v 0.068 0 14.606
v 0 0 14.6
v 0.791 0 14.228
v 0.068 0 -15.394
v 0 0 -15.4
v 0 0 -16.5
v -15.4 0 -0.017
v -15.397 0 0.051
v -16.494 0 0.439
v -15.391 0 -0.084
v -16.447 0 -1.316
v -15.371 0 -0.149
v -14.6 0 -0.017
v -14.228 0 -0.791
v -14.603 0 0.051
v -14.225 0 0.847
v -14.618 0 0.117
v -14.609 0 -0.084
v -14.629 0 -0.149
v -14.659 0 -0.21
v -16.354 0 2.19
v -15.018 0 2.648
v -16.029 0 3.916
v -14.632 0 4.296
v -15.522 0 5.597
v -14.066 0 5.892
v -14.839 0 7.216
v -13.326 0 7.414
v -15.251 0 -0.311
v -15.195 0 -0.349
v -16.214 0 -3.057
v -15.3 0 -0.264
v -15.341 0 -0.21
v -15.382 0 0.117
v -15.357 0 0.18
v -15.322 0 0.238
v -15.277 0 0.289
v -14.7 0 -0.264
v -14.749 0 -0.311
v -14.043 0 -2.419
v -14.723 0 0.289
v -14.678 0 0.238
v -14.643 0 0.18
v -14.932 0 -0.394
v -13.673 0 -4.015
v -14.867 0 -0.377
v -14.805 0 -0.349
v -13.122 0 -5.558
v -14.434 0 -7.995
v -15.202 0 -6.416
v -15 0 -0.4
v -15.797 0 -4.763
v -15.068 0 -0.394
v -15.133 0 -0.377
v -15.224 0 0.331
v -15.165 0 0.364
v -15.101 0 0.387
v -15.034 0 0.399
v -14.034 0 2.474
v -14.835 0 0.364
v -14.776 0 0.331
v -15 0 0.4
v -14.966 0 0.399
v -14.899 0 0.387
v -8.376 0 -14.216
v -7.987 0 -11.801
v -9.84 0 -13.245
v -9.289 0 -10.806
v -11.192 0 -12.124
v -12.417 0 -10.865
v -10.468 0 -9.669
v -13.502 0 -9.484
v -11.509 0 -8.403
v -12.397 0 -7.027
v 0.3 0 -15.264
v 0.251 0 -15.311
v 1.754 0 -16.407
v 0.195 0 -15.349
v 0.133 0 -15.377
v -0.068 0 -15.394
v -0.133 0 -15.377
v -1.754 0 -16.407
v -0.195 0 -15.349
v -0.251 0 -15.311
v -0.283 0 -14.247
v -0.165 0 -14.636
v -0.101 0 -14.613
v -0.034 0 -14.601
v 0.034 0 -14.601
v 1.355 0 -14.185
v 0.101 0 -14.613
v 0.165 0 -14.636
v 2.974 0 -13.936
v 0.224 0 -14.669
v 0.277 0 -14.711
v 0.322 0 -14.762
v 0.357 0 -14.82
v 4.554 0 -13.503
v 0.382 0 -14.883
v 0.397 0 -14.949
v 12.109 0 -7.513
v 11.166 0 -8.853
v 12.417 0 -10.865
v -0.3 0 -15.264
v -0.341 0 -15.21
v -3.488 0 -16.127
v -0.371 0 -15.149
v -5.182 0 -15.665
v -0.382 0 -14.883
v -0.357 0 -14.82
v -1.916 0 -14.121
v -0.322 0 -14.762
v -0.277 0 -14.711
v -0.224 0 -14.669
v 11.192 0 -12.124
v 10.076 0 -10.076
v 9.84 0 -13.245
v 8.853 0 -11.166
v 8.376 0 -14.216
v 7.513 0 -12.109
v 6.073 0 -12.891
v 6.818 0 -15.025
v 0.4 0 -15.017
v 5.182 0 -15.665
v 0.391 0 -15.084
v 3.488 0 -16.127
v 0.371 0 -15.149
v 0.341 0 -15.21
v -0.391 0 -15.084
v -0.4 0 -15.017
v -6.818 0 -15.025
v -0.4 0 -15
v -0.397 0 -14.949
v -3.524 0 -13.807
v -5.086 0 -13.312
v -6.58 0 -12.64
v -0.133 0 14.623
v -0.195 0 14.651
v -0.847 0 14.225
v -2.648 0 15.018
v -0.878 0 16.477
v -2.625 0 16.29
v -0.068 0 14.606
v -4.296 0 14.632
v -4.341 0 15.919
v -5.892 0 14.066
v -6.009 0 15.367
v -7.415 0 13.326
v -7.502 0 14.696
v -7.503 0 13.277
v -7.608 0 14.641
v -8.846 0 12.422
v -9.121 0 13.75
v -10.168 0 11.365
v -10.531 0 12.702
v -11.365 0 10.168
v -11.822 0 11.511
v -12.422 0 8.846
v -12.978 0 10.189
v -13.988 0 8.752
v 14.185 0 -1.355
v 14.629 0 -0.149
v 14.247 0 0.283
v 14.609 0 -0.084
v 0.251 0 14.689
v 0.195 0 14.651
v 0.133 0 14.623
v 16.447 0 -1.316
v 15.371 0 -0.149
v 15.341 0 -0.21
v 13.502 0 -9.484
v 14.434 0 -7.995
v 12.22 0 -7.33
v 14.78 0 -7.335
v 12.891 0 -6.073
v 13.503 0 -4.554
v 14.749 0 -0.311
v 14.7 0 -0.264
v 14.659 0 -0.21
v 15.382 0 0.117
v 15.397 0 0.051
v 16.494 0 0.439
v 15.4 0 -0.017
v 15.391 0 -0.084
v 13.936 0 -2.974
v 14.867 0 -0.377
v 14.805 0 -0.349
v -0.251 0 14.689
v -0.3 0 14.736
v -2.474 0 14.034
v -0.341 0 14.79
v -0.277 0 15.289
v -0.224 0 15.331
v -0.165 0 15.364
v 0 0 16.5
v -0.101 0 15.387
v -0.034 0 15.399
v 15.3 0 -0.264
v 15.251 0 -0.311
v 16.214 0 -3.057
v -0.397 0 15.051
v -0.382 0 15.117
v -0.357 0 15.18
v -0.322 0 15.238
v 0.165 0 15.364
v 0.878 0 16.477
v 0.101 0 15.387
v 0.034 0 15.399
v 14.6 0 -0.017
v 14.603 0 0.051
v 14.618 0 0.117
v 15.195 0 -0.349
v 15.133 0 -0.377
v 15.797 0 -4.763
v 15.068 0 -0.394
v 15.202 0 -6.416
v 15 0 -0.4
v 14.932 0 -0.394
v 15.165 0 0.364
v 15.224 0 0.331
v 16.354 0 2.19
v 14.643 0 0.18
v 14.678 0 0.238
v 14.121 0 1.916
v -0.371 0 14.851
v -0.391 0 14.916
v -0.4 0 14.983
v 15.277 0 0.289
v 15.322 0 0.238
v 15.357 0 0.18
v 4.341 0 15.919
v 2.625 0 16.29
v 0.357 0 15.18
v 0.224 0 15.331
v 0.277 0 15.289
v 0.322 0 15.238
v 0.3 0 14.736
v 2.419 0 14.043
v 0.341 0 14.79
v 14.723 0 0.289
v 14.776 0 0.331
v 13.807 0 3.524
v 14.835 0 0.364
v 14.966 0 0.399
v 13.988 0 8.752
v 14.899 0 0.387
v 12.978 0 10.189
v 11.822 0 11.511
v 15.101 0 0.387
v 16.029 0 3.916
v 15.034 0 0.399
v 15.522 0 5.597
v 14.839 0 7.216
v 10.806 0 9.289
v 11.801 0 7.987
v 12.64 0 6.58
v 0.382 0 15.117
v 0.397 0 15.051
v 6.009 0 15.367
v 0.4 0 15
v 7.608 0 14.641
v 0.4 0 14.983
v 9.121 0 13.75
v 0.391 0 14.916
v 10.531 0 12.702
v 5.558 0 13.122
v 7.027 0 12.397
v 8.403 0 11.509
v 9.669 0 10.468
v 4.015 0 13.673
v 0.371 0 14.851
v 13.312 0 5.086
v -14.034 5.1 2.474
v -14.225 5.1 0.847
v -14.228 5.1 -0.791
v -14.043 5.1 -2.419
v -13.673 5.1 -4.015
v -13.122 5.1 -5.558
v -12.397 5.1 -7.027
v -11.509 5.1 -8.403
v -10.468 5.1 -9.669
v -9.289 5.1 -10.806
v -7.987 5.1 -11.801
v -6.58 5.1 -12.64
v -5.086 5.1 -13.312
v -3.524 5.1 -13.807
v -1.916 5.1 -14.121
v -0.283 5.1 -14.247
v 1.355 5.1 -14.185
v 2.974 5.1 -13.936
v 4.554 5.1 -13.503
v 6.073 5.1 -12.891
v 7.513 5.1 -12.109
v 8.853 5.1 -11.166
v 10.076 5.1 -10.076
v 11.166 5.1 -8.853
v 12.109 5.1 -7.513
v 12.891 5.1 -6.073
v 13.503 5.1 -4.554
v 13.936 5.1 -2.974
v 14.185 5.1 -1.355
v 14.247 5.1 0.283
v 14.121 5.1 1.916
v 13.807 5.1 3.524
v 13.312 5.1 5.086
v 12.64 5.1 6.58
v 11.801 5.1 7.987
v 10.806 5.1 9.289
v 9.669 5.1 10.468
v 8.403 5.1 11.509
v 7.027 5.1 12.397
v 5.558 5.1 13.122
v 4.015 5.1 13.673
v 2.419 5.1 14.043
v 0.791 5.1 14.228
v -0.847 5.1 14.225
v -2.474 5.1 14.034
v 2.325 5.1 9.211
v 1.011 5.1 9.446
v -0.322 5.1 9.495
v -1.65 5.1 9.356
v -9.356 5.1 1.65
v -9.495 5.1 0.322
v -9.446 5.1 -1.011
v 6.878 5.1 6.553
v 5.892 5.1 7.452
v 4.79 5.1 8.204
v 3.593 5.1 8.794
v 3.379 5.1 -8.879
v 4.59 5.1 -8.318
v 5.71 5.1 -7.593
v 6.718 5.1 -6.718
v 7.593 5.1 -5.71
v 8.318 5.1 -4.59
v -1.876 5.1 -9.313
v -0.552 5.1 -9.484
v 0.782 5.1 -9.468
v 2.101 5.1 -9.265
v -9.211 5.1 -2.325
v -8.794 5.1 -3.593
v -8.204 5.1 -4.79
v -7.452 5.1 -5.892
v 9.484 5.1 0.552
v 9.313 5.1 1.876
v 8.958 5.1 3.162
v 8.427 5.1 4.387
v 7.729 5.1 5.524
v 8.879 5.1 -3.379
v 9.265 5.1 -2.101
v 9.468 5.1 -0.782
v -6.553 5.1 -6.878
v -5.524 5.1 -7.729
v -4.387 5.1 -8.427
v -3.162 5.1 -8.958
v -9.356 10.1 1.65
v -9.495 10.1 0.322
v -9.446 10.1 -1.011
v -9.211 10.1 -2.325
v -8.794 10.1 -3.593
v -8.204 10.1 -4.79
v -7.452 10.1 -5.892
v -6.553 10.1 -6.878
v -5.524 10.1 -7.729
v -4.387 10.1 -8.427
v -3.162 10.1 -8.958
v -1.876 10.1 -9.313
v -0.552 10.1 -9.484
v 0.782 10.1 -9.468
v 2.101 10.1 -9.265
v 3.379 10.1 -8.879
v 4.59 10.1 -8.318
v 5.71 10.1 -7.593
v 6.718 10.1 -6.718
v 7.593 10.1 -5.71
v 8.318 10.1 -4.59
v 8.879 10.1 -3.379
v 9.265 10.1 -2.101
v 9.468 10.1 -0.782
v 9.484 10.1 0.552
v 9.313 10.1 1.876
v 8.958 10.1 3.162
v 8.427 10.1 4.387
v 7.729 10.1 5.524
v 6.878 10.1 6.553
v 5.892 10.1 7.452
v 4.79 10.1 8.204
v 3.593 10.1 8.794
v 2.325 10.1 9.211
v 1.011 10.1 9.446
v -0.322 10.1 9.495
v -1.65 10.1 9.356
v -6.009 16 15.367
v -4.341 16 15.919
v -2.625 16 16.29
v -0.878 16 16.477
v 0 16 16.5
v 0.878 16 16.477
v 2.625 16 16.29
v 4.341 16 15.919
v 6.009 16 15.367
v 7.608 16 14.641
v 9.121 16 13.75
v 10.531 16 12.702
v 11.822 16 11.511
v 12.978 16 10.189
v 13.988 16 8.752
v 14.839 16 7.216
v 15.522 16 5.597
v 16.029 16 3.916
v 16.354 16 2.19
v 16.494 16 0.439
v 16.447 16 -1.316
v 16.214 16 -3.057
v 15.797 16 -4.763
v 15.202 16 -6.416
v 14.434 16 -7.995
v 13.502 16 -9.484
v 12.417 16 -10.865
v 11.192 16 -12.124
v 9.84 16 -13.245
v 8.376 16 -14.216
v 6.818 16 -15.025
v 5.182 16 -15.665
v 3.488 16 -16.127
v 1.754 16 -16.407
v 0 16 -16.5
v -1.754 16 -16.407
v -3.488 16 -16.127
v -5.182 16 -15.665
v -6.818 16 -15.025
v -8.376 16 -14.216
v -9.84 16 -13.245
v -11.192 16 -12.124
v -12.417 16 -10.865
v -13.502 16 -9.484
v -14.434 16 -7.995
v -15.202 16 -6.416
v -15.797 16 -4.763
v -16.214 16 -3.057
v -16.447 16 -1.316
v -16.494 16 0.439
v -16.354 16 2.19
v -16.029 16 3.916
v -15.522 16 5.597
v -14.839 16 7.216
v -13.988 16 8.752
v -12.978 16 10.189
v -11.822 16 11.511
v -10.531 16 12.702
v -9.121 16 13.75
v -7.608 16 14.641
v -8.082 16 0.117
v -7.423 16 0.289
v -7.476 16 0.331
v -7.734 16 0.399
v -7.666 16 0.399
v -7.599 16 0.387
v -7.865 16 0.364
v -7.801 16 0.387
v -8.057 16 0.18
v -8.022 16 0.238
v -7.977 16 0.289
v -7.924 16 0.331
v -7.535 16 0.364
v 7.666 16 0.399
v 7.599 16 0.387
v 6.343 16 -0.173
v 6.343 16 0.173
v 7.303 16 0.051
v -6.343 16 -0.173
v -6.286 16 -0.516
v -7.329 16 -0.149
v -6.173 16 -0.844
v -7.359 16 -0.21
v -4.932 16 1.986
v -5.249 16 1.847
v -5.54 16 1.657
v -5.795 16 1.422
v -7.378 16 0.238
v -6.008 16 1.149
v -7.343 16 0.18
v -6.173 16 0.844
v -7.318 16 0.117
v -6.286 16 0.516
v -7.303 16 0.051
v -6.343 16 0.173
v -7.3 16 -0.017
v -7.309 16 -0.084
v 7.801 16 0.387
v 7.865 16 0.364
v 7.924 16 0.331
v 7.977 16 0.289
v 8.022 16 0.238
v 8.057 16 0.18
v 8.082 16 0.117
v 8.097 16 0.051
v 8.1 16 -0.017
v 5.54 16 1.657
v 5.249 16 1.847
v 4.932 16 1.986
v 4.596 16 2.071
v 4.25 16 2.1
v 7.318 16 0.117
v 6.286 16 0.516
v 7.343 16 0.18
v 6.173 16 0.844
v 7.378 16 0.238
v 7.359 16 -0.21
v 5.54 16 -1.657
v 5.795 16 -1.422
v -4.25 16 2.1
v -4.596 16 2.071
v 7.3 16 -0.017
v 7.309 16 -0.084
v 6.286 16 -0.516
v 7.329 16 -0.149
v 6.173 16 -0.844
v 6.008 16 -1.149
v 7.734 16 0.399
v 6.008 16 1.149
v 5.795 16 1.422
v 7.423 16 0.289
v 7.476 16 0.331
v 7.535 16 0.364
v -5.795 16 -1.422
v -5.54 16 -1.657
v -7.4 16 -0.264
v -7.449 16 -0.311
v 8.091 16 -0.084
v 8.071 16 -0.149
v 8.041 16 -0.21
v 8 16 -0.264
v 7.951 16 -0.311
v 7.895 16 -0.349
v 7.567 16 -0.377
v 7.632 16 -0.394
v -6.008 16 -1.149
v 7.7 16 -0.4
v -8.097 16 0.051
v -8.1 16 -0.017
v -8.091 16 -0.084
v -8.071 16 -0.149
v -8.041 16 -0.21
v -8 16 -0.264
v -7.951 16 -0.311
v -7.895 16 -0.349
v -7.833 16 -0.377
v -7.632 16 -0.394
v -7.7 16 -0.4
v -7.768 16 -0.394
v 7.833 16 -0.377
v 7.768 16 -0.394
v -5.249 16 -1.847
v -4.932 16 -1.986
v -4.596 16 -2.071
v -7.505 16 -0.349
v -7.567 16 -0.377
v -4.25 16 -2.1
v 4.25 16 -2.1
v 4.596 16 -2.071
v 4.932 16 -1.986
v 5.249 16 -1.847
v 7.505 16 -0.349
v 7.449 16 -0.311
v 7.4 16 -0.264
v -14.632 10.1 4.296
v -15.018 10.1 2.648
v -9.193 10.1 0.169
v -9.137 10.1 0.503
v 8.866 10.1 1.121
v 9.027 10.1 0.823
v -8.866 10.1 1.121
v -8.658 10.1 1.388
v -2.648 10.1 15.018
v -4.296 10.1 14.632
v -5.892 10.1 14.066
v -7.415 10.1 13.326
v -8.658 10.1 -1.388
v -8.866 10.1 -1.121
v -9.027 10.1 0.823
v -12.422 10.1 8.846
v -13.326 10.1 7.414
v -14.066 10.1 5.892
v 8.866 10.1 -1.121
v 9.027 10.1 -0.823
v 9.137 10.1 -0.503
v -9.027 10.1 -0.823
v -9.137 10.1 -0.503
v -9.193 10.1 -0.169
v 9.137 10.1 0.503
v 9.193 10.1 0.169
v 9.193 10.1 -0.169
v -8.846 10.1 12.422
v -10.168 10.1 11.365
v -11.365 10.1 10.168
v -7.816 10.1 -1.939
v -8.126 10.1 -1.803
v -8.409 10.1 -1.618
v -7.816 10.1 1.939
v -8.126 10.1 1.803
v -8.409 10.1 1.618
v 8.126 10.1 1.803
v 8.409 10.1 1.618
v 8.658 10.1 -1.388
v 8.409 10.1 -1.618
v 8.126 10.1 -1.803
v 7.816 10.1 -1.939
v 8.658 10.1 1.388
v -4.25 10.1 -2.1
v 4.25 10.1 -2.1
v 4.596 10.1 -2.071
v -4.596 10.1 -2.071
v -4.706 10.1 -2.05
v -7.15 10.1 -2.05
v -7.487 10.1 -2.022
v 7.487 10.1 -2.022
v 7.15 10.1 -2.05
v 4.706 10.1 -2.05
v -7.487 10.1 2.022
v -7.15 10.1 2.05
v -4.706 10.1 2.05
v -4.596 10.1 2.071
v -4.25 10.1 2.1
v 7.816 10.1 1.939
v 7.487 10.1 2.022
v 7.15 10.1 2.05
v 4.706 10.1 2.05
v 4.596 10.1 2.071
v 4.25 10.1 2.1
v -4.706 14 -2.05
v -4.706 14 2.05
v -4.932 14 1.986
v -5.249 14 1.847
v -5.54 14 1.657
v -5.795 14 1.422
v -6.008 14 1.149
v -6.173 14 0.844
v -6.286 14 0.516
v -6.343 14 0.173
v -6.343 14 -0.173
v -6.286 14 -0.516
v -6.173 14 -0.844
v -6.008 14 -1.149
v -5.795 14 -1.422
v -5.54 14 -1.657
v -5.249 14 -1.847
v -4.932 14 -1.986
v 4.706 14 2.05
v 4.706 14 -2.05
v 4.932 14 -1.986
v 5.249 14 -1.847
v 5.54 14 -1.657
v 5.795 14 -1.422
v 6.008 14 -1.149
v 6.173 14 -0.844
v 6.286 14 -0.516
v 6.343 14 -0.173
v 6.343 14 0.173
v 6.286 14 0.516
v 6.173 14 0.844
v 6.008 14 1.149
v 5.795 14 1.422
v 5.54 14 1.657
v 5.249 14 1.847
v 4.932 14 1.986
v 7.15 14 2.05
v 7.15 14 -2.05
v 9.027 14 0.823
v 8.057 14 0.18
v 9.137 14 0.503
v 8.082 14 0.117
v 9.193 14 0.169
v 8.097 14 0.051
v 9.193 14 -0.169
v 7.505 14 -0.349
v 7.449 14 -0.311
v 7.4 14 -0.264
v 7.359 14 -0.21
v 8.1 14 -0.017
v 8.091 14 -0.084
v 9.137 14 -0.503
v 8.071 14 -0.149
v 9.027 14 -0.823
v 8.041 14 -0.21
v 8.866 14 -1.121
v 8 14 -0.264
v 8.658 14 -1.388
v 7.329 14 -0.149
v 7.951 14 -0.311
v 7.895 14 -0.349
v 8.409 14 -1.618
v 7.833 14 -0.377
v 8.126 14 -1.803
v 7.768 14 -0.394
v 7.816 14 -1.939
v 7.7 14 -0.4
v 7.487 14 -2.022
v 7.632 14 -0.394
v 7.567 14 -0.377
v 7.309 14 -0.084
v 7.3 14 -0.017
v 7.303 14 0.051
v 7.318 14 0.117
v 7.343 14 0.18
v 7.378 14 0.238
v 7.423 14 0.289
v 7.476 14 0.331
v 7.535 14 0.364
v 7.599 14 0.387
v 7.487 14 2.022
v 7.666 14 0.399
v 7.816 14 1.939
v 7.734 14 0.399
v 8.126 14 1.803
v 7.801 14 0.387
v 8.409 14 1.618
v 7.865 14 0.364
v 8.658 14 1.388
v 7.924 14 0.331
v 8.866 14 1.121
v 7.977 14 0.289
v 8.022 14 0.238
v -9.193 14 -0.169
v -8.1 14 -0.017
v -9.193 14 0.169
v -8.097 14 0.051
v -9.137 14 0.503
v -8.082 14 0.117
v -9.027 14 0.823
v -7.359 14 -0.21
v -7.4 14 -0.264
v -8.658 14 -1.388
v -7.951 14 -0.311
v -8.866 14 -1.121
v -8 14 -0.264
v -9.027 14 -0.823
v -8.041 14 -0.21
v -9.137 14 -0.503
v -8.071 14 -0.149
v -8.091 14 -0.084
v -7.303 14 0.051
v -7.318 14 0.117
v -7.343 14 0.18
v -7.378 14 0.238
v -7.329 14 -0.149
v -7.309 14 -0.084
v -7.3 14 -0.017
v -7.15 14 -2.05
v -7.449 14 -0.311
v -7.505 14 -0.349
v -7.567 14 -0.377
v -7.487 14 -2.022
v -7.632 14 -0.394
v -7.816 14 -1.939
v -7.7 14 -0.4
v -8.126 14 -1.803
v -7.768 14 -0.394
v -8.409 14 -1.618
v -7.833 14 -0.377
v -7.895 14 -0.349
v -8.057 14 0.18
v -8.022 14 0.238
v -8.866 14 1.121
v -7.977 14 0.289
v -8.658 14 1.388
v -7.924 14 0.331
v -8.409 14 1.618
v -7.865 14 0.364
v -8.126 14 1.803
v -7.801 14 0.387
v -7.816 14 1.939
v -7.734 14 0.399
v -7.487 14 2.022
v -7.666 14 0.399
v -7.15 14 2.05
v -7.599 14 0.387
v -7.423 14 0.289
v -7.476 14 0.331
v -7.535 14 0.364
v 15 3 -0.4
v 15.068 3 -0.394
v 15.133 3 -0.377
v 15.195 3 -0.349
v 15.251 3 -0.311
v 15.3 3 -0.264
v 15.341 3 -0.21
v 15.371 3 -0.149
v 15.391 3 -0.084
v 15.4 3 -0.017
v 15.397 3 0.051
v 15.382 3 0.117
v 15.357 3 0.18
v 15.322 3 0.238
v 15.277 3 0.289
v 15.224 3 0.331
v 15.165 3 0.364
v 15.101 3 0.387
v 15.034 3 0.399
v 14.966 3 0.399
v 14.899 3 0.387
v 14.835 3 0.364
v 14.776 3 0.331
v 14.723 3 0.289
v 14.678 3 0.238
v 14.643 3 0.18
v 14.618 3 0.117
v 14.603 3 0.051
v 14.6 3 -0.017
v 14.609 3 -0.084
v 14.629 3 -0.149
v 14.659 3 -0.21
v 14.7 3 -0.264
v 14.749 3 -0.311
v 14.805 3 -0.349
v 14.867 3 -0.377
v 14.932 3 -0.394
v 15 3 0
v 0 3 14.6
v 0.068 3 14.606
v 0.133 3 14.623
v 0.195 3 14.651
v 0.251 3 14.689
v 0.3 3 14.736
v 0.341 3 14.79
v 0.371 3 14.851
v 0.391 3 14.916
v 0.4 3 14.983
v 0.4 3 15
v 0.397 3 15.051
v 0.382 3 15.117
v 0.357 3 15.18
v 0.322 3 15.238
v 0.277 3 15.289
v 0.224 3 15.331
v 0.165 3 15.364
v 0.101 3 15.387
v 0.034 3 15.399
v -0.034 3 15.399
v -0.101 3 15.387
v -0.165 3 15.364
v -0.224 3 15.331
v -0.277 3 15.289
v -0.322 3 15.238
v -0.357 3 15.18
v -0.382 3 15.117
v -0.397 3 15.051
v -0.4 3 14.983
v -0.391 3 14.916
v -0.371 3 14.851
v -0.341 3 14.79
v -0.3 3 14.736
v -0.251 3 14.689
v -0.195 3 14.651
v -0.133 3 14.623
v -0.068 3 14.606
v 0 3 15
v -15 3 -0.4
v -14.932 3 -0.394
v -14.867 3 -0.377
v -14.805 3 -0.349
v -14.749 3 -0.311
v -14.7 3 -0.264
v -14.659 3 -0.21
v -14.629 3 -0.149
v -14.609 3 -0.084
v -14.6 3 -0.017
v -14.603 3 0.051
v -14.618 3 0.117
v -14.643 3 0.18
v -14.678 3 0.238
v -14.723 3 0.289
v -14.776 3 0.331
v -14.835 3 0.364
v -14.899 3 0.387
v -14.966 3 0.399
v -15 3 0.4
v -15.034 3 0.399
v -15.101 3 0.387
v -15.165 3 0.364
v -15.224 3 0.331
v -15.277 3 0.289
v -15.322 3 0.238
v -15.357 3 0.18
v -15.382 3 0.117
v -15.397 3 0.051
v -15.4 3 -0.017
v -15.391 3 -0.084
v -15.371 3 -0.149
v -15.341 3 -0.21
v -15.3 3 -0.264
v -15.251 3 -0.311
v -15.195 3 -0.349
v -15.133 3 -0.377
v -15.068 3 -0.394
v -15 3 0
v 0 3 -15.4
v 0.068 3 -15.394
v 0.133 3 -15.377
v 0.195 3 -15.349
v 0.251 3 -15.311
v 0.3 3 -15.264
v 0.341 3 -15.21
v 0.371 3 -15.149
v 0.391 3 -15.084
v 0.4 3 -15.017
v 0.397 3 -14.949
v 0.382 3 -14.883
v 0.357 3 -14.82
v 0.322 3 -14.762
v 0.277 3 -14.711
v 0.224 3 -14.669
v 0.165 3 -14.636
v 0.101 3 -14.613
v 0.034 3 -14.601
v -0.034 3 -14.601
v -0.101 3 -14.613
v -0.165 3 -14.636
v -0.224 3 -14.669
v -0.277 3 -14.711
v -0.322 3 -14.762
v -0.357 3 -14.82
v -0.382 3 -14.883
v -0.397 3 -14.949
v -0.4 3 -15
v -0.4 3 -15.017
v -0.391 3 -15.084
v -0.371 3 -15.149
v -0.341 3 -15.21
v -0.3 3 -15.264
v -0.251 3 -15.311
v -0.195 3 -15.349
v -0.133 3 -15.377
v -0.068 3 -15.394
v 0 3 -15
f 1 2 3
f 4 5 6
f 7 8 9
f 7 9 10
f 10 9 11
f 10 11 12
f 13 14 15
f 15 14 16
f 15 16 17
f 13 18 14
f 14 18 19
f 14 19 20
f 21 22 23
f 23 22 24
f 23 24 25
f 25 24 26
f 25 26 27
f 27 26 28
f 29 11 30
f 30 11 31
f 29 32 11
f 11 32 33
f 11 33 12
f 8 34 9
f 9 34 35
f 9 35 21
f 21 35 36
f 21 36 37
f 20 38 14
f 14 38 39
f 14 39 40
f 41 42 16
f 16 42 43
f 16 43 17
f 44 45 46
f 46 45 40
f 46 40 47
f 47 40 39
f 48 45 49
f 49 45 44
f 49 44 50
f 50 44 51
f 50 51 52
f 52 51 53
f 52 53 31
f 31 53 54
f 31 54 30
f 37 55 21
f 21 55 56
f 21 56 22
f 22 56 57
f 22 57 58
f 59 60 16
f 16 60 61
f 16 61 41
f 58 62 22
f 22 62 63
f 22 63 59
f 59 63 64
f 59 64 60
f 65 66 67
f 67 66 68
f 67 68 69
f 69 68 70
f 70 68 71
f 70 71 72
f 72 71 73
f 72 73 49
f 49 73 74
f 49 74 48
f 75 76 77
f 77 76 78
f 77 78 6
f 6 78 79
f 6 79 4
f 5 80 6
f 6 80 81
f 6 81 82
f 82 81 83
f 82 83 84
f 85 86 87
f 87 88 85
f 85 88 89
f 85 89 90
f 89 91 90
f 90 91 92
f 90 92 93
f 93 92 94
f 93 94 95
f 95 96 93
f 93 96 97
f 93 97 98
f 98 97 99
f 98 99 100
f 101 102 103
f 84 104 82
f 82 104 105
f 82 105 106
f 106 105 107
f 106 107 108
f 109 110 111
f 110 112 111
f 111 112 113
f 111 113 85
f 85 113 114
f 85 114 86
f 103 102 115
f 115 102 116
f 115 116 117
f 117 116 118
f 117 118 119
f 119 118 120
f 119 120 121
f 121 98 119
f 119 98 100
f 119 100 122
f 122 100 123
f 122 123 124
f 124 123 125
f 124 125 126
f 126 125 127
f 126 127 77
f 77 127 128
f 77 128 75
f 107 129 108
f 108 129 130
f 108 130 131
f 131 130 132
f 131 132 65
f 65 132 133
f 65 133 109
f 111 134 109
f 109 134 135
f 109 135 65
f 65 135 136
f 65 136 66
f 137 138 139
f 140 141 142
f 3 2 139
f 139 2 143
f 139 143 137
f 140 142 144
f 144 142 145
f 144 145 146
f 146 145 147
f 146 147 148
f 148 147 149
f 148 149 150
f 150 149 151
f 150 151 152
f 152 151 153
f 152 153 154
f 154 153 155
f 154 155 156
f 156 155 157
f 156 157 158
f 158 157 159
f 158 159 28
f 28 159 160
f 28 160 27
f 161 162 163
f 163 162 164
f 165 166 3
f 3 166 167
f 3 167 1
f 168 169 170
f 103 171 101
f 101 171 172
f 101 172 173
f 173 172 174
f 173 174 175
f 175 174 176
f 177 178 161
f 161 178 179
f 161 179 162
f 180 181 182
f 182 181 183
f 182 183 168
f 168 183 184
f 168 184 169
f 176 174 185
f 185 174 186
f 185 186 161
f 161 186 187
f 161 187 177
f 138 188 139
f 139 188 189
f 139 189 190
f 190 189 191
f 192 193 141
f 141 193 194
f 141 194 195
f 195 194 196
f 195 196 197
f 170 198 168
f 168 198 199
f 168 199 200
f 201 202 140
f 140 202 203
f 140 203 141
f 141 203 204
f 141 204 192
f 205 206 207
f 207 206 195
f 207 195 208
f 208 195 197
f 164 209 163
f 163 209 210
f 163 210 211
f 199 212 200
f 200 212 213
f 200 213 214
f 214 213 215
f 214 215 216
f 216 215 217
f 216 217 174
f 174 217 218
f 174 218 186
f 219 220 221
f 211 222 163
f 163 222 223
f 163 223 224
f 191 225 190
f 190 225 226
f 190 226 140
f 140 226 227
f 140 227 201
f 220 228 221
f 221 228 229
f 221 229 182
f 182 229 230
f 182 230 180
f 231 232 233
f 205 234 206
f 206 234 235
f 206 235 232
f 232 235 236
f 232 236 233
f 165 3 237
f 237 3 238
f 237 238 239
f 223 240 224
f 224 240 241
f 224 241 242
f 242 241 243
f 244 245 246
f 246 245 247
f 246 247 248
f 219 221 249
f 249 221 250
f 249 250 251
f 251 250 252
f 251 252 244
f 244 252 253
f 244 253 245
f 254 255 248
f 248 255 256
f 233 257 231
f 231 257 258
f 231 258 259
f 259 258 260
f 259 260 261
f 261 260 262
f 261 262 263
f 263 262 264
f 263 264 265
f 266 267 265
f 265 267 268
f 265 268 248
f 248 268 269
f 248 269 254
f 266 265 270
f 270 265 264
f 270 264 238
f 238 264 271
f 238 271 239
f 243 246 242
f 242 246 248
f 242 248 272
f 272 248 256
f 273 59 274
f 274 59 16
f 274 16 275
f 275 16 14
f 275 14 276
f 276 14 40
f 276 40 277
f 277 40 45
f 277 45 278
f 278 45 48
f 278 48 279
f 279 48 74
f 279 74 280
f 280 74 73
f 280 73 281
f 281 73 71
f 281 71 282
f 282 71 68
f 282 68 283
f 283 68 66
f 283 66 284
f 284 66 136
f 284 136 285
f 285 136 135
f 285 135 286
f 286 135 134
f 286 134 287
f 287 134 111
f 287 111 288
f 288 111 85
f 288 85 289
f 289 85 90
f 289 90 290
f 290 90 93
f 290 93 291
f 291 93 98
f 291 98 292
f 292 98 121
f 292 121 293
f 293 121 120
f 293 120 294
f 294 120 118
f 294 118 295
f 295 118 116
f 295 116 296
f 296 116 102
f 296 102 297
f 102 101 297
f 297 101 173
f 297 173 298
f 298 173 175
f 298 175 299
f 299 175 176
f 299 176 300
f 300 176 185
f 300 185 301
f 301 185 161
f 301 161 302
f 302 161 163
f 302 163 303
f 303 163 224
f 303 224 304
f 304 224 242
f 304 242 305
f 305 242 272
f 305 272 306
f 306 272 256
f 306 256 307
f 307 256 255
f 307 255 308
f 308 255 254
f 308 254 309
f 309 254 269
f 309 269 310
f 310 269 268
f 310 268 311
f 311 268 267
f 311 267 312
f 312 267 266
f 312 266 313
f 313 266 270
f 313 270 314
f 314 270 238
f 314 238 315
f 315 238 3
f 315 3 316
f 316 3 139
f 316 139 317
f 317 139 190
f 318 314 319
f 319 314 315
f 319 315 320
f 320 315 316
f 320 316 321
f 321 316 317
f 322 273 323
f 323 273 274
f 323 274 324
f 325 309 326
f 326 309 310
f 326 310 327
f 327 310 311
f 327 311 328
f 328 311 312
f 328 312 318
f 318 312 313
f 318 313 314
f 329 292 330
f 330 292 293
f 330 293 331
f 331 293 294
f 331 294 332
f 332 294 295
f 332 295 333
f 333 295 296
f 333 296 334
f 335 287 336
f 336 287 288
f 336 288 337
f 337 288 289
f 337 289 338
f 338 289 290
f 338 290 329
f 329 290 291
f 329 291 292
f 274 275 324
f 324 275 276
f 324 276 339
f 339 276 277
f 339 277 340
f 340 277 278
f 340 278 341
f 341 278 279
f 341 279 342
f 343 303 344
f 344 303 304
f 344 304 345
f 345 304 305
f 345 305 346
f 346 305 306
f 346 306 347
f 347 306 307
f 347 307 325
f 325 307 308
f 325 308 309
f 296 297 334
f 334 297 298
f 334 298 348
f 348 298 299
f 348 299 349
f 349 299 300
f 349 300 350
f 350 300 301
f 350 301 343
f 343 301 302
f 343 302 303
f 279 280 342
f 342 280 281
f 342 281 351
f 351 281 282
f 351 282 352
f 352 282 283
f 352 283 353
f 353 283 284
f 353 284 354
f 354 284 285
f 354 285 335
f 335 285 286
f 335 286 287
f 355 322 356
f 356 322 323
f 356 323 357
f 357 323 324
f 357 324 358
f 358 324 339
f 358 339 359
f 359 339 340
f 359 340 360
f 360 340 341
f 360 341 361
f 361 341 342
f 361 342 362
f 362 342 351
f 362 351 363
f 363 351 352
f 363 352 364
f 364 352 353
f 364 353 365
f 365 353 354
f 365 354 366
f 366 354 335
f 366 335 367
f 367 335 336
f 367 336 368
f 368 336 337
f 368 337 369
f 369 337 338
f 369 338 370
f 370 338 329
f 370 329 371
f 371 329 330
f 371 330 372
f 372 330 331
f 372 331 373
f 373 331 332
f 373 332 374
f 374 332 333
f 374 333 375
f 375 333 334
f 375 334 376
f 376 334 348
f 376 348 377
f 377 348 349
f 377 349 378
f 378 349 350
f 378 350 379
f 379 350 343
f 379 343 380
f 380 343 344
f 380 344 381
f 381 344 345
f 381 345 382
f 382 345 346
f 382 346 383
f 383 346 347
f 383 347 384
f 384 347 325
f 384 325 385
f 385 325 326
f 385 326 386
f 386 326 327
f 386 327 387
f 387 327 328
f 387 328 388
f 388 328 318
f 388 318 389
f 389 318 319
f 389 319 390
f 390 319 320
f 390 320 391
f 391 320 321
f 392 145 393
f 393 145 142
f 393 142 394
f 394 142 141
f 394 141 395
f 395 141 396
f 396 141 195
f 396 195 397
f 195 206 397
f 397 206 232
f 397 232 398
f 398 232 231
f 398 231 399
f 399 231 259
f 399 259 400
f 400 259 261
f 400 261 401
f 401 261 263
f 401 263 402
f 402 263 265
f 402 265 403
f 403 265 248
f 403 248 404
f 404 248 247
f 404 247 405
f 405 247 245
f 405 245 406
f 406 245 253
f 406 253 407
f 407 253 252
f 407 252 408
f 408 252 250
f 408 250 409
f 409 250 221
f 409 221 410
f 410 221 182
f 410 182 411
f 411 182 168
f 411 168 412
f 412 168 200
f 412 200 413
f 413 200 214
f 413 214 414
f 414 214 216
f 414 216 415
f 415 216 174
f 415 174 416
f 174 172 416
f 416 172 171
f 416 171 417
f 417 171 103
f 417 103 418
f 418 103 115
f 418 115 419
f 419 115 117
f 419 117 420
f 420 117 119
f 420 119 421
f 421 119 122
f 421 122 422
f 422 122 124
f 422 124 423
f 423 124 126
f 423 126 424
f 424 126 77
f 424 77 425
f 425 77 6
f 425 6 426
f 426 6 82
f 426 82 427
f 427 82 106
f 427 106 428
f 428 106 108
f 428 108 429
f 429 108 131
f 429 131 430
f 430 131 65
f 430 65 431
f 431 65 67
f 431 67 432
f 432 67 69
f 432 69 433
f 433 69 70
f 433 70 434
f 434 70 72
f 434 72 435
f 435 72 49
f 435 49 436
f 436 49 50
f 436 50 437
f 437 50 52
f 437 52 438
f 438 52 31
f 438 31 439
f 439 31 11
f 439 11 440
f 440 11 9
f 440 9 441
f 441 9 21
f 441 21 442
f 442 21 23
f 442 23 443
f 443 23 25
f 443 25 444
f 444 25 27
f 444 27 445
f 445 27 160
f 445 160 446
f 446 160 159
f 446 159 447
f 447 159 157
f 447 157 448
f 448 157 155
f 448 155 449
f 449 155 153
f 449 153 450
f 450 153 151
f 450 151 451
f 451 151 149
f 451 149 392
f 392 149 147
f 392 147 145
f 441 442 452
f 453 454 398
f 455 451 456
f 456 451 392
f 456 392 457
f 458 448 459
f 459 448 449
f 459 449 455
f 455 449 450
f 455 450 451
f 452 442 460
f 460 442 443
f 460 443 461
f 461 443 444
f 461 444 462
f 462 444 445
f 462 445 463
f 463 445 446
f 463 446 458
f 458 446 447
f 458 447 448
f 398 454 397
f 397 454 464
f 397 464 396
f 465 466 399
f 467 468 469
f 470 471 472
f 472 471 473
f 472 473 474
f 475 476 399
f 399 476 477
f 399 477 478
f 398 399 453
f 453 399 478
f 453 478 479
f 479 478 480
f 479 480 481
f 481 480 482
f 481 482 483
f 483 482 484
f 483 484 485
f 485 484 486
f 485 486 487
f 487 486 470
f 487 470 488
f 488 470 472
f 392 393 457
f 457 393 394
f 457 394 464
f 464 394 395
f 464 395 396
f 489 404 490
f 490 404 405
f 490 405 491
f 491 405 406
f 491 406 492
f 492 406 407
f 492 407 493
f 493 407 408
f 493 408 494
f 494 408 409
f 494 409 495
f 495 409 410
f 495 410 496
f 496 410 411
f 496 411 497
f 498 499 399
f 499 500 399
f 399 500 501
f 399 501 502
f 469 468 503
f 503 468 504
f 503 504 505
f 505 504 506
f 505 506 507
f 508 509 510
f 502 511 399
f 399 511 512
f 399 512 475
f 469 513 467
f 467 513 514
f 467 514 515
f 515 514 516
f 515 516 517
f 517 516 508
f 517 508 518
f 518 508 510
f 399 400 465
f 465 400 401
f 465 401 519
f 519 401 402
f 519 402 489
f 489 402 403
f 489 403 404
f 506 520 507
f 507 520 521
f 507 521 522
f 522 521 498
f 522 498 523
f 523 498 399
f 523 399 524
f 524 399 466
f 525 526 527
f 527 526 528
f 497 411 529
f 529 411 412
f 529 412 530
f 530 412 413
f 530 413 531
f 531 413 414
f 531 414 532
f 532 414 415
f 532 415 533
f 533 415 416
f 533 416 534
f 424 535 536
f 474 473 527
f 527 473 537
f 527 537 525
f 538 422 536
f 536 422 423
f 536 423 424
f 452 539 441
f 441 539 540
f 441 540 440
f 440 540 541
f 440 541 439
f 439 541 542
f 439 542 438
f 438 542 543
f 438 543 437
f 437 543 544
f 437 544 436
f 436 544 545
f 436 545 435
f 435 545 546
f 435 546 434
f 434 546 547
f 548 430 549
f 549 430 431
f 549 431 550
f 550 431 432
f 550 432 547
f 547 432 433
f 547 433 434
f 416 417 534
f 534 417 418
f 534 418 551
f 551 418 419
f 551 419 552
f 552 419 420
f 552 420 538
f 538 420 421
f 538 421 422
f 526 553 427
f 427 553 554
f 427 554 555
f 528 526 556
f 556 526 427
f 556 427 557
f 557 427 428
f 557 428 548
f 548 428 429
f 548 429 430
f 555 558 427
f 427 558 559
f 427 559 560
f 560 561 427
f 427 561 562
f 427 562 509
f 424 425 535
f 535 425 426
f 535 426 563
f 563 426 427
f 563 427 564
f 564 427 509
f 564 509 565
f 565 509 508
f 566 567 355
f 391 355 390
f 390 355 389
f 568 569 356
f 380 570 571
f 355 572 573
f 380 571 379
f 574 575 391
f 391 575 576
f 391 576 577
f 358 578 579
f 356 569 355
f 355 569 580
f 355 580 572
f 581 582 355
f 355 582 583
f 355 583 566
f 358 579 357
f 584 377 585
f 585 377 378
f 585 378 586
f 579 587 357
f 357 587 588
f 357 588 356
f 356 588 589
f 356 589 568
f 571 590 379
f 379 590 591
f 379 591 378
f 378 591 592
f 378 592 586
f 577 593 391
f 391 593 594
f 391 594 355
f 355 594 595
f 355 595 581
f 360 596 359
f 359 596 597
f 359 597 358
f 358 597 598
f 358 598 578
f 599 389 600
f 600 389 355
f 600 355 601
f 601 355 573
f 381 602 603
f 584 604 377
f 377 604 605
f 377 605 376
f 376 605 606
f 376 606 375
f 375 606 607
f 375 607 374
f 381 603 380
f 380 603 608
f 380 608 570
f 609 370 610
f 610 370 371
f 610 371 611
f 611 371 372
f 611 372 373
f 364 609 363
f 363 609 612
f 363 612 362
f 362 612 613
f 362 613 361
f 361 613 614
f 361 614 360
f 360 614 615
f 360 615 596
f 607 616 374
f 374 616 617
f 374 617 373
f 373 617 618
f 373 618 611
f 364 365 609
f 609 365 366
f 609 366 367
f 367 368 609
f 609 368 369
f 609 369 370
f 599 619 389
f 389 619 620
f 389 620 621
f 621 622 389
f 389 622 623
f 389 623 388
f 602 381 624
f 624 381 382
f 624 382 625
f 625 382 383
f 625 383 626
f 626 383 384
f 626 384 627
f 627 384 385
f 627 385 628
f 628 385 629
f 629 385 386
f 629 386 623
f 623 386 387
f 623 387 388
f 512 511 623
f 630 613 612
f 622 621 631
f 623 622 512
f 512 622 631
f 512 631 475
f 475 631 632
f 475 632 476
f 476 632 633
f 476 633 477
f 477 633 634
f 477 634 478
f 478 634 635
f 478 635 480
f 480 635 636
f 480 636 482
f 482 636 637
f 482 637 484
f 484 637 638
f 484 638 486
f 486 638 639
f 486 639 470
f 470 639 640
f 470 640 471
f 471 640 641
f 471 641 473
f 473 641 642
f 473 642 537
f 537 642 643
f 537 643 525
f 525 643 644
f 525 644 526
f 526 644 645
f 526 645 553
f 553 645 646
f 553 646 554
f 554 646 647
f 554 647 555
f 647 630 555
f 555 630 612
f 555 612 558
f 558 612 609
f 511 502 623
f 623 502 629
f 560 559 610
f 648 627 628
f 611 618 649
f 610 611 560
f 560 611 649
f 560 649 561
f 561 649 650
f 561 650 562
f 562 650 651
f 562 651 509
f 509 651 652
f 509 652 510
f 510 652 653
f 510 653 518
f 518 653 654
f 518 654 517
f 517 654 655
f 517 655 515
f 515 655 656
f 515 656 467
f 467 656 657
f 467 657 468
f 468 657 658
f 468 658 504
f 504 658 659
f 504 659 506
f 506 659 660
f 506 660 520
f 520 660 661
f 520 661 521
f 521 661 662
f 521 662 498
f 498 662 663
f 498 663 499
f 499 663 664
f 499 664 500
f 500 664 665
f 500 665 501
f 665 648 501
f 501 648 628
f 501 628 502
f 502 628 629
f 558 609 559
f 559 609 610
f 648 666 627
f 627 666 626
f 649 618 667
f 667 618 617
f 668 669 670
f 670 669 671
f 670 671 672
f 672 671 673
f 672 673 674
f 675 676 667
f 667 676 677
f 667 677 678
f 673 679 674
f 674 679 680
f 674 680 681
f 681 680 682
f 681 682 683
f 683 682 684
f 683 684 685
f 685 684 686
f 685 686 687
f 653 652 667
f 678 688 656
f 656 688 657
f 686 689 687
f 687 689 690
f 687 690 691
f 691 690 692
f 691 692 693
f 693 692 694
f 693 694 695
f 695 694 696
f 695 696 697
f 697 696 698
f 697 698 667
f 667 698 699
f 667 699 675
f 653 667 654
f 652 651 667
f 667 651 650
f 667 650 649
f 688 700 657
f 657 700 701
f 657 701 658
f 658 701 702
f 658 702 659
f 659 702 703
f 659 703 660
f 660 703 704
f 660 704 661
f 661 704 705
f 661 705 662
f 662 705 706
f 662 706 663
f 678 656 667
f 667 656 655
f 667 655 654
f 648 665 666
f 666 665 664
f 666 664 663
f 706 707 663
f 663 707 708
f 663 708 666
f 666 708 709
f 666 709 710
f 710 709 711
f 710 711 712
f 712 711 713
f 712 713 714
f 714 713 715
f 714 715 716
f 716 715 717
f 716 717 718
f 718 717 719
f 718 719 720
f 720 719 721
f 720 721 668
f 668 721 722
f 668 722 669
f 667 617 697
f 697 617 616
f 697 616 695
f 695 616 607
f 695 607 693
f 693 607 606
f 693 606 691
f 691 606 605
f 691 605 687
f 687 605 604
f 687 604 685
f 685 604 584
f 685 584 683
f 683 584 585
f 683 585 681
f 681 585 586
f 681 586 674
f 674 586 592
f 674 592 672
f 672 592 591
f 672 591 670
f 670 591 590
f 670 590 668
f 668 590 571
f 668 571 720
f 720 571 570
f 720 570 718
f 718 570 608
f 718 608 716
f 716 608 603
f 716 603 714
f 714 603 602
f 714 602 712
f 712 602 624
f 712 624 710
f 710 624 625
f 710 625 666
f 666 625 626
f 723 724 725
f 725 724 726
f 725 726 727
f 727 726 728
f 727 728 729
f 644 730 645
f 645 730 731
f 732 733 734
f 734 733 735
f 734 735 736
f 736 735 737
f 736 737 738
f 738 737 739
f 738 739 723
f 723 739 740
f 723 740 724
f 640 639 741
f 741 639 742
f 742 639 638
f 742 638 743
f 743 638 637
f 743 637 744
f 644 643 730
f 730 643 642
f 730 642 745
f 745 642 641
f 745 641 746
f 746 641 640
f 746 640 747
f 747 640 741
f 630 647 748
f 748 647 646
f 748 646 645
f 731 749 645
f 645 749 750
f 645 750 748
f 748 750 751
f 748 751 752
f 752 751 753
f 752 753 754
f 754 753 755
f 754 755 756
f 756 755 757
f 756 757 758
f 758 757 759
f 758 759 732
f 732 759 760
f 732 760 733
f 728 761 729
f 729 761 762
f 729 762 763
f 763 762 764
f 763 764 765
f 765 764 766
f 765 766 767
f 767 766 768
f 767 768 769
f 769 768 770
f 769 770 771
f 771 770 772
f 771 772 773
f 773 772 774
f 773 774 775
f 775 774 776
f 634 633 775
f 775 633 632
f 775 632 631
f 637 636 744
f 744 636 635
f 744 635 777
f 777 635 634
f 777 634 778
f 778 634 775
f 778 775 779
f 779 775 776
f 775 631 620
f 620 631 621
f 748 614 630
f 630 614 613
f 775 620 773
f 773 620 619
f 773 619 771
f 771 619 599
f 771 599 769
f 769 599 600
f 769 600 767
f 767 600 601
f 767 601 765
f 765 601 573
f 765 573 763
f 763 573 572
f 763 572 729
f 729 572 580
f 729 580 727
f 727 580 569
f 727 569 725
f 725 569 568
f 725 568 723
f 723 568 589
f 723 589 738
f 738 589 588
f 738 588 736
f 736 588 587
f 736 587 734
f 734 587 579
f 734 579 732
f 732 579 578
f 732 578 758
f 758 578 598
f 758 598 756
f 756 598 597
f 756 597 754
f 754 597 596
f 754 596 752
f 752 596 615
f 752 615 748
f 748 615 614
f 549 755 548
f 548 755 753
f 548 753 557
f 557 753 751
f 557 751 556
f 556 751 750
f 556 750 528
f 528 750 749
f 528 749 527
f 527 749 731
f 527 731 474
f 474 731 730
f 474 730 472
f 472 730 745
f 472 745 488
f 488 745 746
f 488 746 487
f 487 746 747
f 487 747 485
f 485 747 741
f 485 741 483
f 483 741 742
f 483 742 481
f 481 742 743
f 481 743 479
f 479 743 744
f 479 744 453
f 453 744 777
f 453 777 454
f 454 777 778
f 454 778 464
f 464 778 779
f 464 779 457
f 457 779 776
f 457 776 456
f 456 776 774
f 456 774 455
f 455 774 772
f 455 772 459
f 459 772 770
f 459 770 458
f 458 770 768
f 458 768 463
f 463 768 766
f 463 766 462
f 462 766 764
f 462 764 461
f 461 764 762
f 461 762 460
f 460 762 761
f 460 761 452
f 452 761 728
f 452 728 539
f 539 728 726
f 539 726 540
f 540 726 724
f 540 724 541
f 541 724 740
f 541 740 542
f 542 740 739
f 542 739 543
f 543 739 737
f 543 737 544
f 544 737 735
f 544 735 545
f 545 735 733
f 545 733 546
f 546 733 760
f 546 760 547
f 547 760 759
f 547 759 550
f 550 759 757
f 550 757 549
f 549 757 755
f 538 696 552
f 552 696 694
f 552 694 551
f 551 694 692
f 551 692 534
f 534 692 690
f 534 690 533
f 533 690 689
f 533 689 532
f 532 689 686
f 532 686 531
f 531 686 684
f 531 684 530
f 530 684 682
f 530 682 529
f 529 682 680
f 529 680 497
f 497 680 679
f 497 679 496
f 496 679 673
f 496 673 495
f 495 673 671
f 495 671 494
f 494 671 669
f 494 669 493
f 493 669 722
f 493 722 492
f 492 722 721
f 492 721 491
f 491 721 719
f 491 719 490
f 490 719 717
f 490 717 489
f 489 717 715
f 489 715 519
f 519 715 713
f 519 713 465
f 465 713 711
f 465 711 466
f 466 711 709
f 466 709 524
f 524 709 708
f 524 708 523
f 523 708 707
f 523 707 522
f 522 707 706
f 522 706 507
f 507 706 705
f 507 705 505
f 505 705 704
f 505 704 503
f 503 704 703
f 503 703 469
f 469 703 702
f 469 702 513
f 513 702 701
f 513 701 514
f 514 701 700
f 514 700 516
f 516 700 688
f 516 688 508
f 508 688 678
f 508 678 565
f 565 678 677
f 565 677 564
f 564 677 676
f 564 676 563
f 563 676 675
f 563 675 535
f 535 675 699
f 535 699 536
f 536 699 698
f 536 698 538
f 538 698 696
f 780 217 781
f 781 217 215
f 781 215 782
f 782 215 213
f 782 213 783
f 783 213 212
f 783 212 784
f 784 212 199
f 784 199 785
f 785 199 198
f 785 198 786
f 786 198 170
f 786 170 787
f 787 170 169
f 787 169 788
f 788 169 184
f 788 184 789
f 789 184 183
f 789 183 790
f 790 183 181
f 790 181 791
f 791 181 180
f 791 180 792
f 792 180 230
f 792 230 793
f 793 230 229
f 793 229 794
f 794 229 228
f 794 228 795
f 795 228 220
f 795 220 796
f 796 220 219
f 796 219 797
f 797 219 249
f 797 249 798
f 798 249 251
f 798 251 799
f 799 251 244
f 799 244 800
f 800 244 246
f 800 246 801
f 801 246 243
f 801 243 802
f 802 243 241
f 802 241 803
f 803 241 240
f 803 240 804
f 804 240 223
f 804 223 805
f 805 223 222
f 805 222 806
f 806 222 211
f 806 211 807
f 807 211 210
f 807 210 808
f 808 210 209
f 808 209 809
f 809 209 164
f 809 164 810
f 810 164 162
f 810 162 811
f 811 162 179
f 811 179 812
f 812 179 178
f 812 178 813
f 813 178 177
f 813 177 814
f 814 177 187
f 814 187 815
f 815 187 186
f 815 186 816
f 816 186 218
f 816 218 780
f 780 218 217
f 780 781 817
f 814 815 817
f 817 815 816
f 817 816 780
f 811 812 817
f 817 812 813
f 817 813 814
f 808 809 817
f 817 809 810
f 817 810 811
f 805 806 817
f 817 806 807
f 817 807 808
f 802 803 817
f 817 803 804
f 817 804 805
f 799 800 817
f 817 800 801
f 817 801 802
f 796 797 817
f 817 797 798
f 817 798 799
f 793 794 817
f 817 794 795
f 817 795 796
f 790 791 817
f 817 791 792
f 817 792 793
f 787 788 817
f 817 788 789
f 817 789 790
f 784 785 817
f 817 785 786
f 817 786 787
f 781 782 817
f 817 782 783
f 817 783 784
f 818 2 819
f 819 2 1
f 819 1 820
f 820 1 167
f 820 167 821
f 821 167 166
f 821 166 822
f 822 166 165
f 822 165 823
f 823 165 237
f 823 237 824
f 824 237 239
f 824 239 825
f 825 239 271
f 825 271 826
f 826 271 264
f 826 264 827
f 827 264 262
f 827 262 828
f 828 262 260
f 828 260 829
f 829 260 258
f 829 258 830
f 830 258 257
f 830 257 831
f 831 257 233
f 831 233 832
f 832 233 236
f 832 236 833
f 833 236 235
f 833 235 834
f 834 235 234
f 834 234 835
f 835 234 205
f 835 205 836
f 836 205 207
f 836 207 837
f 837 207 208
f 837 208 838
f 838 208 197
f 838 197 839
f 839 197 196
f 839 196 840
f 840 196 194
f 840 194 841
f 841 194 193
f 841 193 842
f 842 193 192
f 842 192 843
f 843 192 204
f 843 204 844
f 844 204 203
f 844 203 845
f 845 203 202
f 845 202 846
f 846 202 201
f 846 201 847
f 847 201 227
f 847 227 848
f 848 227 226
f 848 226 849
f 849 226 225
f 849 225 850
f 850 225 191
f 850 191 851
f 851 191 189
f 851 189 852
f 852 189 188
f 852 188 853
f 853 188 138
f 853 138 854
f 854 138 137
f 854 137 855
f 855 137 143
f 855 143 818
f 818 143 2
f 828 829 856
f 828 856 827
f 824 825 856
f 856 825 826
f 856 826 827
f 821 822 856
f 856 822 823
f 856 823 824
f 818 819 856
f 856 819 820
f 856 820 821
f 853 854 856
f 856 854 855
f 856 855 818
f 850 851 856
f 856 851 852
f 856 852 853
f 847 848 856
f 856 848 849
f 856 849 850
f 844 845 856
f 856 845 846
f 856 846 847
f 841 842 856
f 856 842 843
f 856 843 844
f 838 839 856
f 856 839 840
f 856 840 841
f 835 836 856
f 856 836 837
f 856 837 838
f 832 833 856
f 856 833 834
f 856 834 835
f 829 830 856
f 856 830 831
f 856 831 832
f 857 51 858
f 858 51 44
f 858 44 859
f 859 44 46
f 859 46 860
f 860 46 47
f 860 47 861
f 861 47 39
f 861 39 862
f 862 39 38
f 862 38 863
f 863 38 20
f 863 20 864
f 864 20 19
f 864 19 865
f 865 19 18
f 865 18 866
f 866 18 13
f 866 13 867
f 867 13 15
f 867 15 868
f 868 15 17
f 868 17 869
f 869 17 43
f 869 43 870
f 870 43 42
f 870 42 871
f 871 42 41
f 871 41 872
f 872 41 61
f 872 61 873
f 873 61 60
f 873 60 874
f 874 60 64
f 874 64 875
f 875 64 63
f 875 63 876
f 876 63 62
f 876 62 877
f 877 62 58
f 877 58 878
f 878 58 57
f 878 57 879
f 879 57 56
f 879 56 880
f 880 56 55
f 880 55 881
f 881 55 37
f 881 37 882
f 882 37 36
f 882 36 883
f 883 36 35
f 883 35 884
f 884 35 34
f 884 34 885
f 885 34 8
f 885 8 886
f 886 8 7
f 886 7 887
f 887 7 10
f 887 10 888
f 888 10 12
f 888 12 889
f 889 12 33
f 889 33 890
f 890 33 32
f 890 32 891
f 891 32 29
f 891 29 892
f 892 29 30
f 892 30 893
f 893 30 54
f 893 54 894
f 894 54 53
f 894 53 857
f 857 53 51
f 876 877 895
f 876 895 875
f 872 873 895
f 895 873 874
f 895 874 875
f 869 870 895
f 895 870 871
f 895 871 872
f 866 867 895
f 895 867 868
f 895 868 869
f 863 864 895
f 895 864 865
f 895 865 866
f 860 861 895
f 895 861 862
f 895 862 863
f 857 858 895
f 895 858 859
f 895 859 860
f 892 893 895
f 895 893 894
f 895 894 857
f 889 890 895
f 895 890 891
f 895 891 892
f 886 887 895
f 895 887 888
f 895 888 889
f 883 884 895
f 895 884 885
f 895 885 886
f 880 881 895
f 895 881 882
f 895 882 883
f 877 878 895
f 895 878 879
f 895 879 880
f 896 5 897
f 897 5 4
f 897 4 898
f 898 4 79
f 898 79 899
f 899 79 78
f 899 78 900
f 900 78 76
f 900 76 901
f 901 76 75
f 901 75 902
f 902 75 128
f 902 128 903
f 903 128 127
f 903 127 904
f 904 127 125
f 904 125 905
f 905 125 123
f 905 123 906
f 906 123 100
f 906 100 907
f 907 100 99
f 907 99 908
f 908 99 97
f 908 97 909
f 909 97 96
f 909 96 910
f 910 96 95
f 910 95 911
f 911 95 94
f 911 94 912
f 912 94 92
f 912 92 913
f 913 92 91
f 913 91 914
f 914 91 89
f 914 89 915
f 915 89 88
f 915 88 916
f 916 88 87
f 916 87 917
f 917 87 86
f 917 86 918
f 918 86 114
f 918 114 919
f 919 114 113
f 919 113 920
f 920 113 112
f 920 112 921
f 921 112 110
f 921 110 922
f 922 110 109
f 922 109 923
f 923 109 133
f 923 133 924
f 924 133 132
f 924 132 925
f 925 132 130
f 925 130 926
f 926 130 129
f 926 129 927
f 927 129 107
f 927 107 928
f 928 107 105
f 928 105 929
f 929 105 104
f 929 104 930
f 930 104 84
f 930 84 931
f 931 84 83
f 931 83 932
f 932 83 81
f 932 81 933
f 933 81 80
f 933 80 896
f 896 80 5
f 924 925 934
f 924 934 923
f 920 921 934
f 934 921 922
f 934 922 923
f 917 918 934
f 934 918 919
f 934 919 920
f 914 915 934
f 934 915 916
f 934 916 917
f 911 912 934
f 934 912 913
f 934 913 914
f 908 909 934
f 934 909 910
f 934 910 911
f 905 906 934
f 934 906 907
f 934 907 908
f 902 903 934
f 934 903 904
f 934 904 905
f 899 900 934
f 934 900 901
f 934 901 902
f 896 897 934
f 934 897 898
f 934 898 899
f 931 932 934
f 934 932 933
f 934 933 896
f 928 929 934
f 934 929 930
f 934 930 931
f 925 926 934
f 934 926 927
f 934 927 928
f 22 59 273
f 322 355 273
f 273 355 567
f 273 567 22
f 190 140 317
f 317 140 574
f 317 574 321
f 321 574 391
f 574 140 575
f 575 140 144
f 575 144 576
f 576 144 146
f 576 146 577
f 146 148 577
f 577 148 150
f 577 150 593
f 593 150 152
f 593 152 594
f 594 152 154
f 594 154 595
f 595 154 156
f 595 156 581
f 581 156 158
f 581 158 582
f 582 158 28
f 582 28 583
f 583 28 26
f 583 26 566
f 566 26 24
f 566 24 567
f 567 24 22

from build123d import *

# Parameters (mm, degrees)
SKETCH_1_R               = 16.5
EXTRUDE_1_DEPTH          = 16
SKETCH_2_R               = 14.25
CUT_EXTRUDE_1_DEPTH      = 5.1
SKETCH_3_R               = 9.5
CUT_EXTRUDE_2_DEPTH      = 5
CUT_EXTRUDE_3_DEPTH      = 29.293108702
CUT_EXTRUDE_START        = -14
CUT_EXTRUDE_4_DEPTH      = 3.9
SKETCH_6_R               = 0.4
CUT_EXTRUDE_5_DEPTH      = 2
SKETCH_7_R               = 0.4
CUT_EXTRUDE_6_DEPTH      = 3
PATTERN_CIRCULAR_1_COUNT = 4
CUT_EXTRUDE_START_2      = -10.1
CUT_EXTRUDE_7_DEPTH      = 10.1


# Read off the part's stored shape, not the designer's step: 切除-拉伸4
with BuildPart() as part:
    # 草图1 → 凸台-拉伸1 (new body)
    with BuildSketch(Plane(origin=(0, 0, 0), x_dir=(1, 0, 0), z_dir=(0, 1, 0))):
        with Locations(Location((0, 0, 0), (0, 0, 270))):
            Circle(SKETCH_1_R)
    extrude(amount=EXTRUDE_1_DEPTH)

    # 草图2 → 切除-拉伸1 (cut)
    with BuildSketch(Plane(origin=(0, 0, 0), x_dir=(-1, 0, 0), z_dir=(0, -1, 0))):
        with Locations(Location((0, 0, 0), (0, 0, 90))):
            Circle(SKETCH_2_R)
    extrude(amount=-CUT_EXTRUDE_1_DEPTH, mode=Mode.SUBTRACT)

    # 草图3 → 切除-拉伸2 (cut)
    with BuildSketch(Plane.XZ.offset(-5.1)):
        with Locations(Location((0, 0, 0), (0, 0, 270))):
            Circle(SKETCH_3_R)
    extrude(amount=-CUT_EXTRUDE_2_DEPTH, mode=Mode.SUBTRACT)

    # 草图4 → 切除-拉伸3 (cut, through all)
    with BuildSketch(Plane.XZ):
        with BuildLine():
            ThreePointArc((-2.15, 0), (-2.76507576, 1.48492424), (-4.25, 2.1))
            Line((-4.25, 2.1), (-4.25, -2.1))
            ThreePointArc((-4.25, -2.1), (-2.76507576, -1.48492424), (-2.15, 0))
        make_face()
        with BuildLine():
            Line((-4.25, -2.1), (-4.25, 2.1))
            ThreePointArc((-4.25, 2.1), (-6.35, 0), (-4.25, -2.1))
        make_face()
        with BuildLine():
            ThreePointArc((4.25, -2.1), (2.15, 0), (4.25, 2.1))
            Line((4.25, 2.1), (-4.25, 2.1))
            ThreePointArc((-4.25, 2.1), (-2.76507576, 1.48492424), (-2.15, 0))
            ThreePointArc((-2.15, 0), (-2.76507576, -1.48492424), (-4.25, -2.1))
            Line((-4.25, -2.1), (4.25, -2.1))
        make_face()
        with BuildLine():
            ThreePointArc((6.35, 0), (5.73492424, 1.48492424), (4.25, 2.1))
            Line((4.25, 2.1), (4.25, -2.1))
            ThreePointArc((4.25, -2.1), (5.73492424, -1.48492424), (6.35, 0))
        make_face()
        with BuildLine():
            Line((4.25, -2.1), (4.25, 2.1))
            ThreePointArc((4.25, 2.1), (2.15, 0), (4.25, -2.1))
        make_face()
    extrude(amount=-CUT_EXTRUDE_3_DEPTH, mode=Mode.SUBTRACT)

    # 切除-拉伸4 outline → 切除-拉伸4 (cut)
    with BuildSketch(Plane.XZ.offset(CUT_EXTRUDE_START)):
        with BuildLine():
            ThreePointArc((7.15, -2.05), (9.2, 0), (7.15, 2.05))
            Line((7.15, 2.05), (4.705521679, 2.05))
            ThreePointArc((4.705521679, 2.05), (6.35, 0), (4.705521679, -2.05))
            Line((4.705521679, -2.05), (7.15, -2.05))
        make_face()
        with BuildLine():
            ThreePointArc((-4.705521679, -2.05), (-6.35, 0), (-4.705521679, 2.05))
            Line((-4.705521679, 2.05), (-7.15, 2.05))
            ThreePointArc((-7.15, 2.05), (-9.2, 0), (-7.15, -2.05))
            Line((-7.15, -2.05), (-4.705521679, -2.05))
        make_face()
    extrude(amount=CUT_EXTRUDE_4_DEPTH, mode=Mode.SUBTRACT)

    # 草图6 → 切除-拉伸5 (cut)
    with BuildSketch(Plane.XZ.offset(-14)):
        with Locations(Location((7.7, 0, 0), (0, 0, 270))):
            Circle(SKETCH_6_R)
        with Locations(Location((-7.7, 0, 0), (0, 0, 270))):
            Circle(SKETCH_6_R)
    extrude(amount=-CUT_EXTRUDE_5_DEPTH, mode=Mode.SUBTRACT)

    # 草图7 → 切除-拉伸6 (cut)
    with BuildSketch(Plane.XZ):
        with Locations(Location((15, 0, 0), (0, 0, 270))):
            Circle(SKETCH_7_R)
    cut_extrude_6 = extrude(amount=-CUT_EXTRUDE_6_DEPTH, mode=Mode.SUBTRACT)

    # 阵列(圆周)1: 切除-拉伸6 ×4 about axis
    pattern_circular_1_axis = Axis((0, 0, 0), (0, 1, 0))
    for i in range(1, PATTERN_CIRCULAR_1_COUNT):
        add(cut_extrude_6.rotate(pattern_circular_1_axis, i * 360 / PATTERN_CIRCULAR_1_COUNT), mode=Mode.SUBTRACT)

    # 草图8 → 切除-拉伸7 (cut)
    with BuildSketch(Plane.XZ.offset(CUT_EXTRUDE_START_2)):
        with BuildLine():
            Line((-14.03351048, 2.474486532), (0, 0))
            Line((0, 0), (-2.474486532, 14.03351048))
            ThreePointArc((-2.474486532, 14.03351048), (-10.076271632, 10.076271632), (-14.03351048, 2.474486532))
        make_face()
        with BuildLine():
            Line((-15.018318233, 2.648134709), (-14.03351048, 2.474486532))
            ThreePointArc((-14.03351048, 2.474486532), (-10.076271632, 10.076271632), (-2.474486532, 14.03351048))
            Line((-2.474486532, 14.03351048), (-2.648134709, 15.018318233))
            ThreePointArc((-2.648134709, 15.018318233), (-10.783378413, 10.783378413), (-15.018318233, 2.648134709))
        make_face()
    extrude(amount=CUT_EXTRUDE_7_DEPTH, mode=Mode.SUBTRACT)


solid = part.part
